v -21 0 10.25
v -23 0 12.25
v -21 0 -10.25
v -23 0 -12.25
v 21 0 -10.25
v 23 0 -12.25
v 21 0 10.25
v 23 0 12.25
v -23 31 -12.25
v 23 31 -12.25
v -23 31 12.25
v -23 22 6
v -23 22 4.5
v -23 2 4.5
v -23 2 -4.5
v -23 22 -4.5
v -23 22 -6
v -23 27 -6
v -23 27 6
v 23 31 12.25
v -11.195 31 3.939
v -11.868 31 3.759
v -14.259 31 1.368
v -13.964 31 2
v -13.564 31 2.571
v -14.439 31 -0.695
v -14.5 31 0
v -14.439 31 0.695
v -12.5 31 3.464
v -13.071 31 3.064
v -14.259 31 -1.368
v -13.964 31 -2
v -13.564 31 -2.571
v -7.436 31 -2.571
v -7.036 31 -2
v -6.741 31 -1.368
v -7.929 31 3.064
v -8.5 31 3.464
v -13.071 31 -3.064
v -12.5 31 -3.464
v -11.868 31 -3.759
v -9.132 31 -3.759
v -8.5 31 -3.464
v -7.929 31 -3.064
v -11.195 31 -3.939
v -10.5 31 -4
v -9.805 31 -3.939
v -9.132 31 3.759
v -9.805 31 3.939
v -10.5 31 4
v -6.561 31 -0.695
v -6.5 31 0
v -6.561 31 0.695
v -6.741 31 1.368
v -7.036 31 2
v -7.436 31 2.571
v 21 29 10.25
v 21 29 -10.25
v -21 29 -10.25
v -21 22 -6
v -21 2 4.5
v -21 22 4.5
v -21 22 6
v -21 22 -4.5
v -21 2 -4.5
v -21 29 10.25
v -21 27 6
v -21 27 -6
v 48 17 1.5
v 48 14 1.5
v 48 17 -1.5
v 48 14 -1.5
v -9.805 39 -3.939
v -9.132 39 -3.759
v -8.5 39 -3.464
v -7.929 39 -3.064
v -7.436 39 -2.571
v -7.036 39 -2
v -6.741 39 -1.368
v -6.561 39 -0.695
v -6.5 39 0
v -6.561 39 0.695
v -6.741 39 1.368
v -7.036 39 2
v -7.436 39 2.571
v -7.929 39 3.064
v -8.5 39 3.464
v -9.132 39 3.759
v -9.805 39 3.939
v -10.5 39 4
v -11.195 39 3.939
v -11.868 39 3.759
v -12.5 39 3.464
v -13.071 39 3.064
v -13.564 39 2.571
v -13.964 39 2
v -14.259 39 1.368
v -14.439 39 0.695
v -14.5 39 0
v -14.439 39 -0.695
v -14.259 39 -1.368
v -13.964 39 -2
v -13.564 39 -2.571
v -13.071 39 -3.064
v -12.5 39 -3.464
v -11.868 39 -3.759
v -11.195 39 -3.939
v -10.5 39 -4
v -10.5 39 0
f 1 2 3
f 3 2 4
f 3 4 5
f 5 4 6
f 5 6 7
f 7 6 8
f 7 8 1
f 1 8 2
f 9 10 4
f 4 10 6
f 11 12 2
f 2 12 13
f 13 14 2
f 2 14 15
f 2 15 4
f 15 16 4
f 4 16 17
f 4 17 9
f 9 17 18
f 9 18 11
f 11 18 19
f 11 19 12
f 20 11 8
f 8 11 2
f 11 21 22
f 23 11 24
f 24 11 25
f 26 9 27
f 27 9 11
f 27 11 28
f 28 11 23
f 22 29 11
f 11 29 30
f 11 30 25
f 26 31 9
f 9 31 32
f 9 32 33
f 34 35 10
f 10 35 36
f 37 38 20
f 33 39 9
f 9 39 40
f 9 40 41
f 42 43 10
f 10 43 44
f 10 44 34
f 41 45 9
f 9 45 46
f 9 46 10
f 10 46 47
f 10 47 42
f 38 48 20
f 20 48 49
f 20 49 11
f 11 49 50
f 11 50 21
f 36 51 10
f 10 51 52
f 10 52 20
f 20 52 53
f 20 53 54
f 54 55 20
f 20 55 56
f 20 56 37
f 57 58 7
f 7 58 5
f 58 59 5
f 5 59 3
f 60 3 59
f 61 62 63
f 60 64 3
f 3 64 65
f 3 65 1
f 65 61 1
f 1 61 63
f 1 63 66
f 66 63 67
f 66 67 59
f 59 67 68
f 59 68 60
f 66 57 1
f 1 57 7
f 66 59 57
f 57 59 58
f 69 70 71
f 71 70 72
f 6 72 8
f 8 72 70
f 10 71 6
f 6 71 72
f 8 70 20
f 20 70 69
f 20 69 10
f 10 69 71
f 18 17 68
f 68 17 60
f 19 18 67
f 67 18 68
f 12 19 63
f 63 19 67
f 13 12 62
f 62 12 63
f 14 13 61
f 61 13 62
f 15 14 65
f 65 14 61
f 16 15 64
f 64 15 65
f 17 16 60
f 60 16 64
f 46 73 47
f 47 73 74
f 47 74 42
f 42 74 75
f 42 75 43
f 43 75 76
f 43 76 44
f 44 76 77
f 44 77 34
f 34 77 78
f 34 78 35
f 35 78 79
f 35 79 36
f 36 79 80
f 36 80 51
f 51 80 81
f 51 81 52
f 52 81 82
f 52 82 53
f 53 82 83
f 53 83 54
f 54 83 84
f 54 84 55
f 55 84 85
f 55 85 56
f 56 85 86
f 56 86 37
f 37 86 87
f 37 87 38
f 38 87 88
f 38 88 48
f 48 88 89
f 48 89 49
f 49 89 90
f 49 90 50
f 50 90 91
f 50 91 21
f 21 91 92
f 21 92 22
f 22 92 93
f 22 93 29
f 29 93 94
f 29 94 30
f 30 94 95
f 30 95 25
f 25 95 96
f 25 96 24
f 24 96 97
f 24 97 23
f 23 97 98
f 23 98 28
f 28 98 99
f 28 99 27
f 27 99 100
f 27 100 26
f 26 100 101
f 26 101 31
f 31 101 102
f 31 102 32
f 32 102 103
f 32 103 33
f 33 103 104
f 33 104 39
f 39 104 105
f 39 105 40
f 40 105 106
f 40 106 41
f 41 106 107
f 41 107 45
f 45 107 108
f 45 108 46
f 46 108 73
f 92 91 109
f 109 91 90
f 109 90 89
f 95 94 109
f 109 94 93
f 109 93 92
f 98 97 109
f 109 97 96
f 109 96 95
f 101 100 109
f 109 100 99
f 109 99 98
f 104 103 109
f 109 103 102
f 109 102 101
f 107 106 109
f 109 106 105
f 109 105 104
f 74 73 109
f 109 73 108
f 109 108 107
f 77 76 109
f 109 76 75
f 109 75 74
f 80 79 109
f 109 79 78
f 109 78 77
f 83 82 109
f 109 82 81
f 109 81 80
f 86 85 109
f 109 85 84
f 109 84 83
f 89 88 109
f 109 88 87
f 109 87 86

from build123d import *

# Parameters (mm, degrees)
SKETCH1_W           = 46
SKETCH1_H           = 24.5
BODY_DEPTH          = 31
SKETCH3_W           = 42
SKETCH3_H           = 20.5
SERVO_HOLE_DEPTH    = 29
CUT_EXTRUDE3_DEPTH  = 29
SKETCH6_R           = 4
BOSS_EXTRUDE3_DEPTH = 8


with BuildPart() as part:
    # Sketch1 → Body (new body)
    with BuildSketch(Plane(origin=(0, 0, 0), x_dir=(1, 0, 0), z_dir=(0, 1, 0))):
        Rectangle(SKETCH1_W, SKETCH1_H)
    extrude(amount=BODY_DEPTH)

    # Sketch3 → Servo Hole (cut)
    with BuildSketch(Plane(origin=(0, 0, 0), x_dir=(1, 0, 0), z_dir=(0, 1, 0))):
        Rectangle(SKETCH3_W, SKETCH3_H)
    extrude(amount=SERVO_HOLE_DEPTH, mode=Mode.SUBTRACT)

    # Point → section 0 of loft1
    with BuildSketch(Plane(origin=(48, 0, 0), x_dir=(0, 0, -1), z_dir=(1, 0, 0)), mode=Mode.PRIVATE) as loft1_s0:
        with BuildLine():
            Line((-1.5, 14), (1.5, 14))
            Line((1.5, 14), (1.5, 17))
            Line((1.5, 17), (-1.5, 17))
            Line((-1.5, 17), (-1.5, 14))
        make_face()
    # loft up to a face of the part (loft1)
    loft([loft1_s0.sketch, part.faces().sort_by_distance((23, 15.5, 0))[0]])

    # Sketch5 → Cut-Extrude3 (cut)
    with BuildSketch(Plane.ZY.offset(23)):
        Polygon((-6, 27), (6, 27), (6, 22), (4.5, 22), (4.5, 2), (-4.5, 2), (-4.5, 22), (-6, 22), align=None)
    extrude(amount=-CUT_EXTRUDE3_DEPTH, mode=Mode.SUBTRACT)

    # Sketch6 → Boss-Extrude3 (add)
    with BuildSketch(Plane(origin=(0, 31, 0), x_dir=(1, 0, 0), z_dir=(0, 1, 0))):
        with Locations(Location((-10.5, 0, 0), (0, 0, 90))):
            Circle(SKETCH6_R)
    extrude(amount=BOSS_EXTRUDE3_DEPTH)


solid = part.part
